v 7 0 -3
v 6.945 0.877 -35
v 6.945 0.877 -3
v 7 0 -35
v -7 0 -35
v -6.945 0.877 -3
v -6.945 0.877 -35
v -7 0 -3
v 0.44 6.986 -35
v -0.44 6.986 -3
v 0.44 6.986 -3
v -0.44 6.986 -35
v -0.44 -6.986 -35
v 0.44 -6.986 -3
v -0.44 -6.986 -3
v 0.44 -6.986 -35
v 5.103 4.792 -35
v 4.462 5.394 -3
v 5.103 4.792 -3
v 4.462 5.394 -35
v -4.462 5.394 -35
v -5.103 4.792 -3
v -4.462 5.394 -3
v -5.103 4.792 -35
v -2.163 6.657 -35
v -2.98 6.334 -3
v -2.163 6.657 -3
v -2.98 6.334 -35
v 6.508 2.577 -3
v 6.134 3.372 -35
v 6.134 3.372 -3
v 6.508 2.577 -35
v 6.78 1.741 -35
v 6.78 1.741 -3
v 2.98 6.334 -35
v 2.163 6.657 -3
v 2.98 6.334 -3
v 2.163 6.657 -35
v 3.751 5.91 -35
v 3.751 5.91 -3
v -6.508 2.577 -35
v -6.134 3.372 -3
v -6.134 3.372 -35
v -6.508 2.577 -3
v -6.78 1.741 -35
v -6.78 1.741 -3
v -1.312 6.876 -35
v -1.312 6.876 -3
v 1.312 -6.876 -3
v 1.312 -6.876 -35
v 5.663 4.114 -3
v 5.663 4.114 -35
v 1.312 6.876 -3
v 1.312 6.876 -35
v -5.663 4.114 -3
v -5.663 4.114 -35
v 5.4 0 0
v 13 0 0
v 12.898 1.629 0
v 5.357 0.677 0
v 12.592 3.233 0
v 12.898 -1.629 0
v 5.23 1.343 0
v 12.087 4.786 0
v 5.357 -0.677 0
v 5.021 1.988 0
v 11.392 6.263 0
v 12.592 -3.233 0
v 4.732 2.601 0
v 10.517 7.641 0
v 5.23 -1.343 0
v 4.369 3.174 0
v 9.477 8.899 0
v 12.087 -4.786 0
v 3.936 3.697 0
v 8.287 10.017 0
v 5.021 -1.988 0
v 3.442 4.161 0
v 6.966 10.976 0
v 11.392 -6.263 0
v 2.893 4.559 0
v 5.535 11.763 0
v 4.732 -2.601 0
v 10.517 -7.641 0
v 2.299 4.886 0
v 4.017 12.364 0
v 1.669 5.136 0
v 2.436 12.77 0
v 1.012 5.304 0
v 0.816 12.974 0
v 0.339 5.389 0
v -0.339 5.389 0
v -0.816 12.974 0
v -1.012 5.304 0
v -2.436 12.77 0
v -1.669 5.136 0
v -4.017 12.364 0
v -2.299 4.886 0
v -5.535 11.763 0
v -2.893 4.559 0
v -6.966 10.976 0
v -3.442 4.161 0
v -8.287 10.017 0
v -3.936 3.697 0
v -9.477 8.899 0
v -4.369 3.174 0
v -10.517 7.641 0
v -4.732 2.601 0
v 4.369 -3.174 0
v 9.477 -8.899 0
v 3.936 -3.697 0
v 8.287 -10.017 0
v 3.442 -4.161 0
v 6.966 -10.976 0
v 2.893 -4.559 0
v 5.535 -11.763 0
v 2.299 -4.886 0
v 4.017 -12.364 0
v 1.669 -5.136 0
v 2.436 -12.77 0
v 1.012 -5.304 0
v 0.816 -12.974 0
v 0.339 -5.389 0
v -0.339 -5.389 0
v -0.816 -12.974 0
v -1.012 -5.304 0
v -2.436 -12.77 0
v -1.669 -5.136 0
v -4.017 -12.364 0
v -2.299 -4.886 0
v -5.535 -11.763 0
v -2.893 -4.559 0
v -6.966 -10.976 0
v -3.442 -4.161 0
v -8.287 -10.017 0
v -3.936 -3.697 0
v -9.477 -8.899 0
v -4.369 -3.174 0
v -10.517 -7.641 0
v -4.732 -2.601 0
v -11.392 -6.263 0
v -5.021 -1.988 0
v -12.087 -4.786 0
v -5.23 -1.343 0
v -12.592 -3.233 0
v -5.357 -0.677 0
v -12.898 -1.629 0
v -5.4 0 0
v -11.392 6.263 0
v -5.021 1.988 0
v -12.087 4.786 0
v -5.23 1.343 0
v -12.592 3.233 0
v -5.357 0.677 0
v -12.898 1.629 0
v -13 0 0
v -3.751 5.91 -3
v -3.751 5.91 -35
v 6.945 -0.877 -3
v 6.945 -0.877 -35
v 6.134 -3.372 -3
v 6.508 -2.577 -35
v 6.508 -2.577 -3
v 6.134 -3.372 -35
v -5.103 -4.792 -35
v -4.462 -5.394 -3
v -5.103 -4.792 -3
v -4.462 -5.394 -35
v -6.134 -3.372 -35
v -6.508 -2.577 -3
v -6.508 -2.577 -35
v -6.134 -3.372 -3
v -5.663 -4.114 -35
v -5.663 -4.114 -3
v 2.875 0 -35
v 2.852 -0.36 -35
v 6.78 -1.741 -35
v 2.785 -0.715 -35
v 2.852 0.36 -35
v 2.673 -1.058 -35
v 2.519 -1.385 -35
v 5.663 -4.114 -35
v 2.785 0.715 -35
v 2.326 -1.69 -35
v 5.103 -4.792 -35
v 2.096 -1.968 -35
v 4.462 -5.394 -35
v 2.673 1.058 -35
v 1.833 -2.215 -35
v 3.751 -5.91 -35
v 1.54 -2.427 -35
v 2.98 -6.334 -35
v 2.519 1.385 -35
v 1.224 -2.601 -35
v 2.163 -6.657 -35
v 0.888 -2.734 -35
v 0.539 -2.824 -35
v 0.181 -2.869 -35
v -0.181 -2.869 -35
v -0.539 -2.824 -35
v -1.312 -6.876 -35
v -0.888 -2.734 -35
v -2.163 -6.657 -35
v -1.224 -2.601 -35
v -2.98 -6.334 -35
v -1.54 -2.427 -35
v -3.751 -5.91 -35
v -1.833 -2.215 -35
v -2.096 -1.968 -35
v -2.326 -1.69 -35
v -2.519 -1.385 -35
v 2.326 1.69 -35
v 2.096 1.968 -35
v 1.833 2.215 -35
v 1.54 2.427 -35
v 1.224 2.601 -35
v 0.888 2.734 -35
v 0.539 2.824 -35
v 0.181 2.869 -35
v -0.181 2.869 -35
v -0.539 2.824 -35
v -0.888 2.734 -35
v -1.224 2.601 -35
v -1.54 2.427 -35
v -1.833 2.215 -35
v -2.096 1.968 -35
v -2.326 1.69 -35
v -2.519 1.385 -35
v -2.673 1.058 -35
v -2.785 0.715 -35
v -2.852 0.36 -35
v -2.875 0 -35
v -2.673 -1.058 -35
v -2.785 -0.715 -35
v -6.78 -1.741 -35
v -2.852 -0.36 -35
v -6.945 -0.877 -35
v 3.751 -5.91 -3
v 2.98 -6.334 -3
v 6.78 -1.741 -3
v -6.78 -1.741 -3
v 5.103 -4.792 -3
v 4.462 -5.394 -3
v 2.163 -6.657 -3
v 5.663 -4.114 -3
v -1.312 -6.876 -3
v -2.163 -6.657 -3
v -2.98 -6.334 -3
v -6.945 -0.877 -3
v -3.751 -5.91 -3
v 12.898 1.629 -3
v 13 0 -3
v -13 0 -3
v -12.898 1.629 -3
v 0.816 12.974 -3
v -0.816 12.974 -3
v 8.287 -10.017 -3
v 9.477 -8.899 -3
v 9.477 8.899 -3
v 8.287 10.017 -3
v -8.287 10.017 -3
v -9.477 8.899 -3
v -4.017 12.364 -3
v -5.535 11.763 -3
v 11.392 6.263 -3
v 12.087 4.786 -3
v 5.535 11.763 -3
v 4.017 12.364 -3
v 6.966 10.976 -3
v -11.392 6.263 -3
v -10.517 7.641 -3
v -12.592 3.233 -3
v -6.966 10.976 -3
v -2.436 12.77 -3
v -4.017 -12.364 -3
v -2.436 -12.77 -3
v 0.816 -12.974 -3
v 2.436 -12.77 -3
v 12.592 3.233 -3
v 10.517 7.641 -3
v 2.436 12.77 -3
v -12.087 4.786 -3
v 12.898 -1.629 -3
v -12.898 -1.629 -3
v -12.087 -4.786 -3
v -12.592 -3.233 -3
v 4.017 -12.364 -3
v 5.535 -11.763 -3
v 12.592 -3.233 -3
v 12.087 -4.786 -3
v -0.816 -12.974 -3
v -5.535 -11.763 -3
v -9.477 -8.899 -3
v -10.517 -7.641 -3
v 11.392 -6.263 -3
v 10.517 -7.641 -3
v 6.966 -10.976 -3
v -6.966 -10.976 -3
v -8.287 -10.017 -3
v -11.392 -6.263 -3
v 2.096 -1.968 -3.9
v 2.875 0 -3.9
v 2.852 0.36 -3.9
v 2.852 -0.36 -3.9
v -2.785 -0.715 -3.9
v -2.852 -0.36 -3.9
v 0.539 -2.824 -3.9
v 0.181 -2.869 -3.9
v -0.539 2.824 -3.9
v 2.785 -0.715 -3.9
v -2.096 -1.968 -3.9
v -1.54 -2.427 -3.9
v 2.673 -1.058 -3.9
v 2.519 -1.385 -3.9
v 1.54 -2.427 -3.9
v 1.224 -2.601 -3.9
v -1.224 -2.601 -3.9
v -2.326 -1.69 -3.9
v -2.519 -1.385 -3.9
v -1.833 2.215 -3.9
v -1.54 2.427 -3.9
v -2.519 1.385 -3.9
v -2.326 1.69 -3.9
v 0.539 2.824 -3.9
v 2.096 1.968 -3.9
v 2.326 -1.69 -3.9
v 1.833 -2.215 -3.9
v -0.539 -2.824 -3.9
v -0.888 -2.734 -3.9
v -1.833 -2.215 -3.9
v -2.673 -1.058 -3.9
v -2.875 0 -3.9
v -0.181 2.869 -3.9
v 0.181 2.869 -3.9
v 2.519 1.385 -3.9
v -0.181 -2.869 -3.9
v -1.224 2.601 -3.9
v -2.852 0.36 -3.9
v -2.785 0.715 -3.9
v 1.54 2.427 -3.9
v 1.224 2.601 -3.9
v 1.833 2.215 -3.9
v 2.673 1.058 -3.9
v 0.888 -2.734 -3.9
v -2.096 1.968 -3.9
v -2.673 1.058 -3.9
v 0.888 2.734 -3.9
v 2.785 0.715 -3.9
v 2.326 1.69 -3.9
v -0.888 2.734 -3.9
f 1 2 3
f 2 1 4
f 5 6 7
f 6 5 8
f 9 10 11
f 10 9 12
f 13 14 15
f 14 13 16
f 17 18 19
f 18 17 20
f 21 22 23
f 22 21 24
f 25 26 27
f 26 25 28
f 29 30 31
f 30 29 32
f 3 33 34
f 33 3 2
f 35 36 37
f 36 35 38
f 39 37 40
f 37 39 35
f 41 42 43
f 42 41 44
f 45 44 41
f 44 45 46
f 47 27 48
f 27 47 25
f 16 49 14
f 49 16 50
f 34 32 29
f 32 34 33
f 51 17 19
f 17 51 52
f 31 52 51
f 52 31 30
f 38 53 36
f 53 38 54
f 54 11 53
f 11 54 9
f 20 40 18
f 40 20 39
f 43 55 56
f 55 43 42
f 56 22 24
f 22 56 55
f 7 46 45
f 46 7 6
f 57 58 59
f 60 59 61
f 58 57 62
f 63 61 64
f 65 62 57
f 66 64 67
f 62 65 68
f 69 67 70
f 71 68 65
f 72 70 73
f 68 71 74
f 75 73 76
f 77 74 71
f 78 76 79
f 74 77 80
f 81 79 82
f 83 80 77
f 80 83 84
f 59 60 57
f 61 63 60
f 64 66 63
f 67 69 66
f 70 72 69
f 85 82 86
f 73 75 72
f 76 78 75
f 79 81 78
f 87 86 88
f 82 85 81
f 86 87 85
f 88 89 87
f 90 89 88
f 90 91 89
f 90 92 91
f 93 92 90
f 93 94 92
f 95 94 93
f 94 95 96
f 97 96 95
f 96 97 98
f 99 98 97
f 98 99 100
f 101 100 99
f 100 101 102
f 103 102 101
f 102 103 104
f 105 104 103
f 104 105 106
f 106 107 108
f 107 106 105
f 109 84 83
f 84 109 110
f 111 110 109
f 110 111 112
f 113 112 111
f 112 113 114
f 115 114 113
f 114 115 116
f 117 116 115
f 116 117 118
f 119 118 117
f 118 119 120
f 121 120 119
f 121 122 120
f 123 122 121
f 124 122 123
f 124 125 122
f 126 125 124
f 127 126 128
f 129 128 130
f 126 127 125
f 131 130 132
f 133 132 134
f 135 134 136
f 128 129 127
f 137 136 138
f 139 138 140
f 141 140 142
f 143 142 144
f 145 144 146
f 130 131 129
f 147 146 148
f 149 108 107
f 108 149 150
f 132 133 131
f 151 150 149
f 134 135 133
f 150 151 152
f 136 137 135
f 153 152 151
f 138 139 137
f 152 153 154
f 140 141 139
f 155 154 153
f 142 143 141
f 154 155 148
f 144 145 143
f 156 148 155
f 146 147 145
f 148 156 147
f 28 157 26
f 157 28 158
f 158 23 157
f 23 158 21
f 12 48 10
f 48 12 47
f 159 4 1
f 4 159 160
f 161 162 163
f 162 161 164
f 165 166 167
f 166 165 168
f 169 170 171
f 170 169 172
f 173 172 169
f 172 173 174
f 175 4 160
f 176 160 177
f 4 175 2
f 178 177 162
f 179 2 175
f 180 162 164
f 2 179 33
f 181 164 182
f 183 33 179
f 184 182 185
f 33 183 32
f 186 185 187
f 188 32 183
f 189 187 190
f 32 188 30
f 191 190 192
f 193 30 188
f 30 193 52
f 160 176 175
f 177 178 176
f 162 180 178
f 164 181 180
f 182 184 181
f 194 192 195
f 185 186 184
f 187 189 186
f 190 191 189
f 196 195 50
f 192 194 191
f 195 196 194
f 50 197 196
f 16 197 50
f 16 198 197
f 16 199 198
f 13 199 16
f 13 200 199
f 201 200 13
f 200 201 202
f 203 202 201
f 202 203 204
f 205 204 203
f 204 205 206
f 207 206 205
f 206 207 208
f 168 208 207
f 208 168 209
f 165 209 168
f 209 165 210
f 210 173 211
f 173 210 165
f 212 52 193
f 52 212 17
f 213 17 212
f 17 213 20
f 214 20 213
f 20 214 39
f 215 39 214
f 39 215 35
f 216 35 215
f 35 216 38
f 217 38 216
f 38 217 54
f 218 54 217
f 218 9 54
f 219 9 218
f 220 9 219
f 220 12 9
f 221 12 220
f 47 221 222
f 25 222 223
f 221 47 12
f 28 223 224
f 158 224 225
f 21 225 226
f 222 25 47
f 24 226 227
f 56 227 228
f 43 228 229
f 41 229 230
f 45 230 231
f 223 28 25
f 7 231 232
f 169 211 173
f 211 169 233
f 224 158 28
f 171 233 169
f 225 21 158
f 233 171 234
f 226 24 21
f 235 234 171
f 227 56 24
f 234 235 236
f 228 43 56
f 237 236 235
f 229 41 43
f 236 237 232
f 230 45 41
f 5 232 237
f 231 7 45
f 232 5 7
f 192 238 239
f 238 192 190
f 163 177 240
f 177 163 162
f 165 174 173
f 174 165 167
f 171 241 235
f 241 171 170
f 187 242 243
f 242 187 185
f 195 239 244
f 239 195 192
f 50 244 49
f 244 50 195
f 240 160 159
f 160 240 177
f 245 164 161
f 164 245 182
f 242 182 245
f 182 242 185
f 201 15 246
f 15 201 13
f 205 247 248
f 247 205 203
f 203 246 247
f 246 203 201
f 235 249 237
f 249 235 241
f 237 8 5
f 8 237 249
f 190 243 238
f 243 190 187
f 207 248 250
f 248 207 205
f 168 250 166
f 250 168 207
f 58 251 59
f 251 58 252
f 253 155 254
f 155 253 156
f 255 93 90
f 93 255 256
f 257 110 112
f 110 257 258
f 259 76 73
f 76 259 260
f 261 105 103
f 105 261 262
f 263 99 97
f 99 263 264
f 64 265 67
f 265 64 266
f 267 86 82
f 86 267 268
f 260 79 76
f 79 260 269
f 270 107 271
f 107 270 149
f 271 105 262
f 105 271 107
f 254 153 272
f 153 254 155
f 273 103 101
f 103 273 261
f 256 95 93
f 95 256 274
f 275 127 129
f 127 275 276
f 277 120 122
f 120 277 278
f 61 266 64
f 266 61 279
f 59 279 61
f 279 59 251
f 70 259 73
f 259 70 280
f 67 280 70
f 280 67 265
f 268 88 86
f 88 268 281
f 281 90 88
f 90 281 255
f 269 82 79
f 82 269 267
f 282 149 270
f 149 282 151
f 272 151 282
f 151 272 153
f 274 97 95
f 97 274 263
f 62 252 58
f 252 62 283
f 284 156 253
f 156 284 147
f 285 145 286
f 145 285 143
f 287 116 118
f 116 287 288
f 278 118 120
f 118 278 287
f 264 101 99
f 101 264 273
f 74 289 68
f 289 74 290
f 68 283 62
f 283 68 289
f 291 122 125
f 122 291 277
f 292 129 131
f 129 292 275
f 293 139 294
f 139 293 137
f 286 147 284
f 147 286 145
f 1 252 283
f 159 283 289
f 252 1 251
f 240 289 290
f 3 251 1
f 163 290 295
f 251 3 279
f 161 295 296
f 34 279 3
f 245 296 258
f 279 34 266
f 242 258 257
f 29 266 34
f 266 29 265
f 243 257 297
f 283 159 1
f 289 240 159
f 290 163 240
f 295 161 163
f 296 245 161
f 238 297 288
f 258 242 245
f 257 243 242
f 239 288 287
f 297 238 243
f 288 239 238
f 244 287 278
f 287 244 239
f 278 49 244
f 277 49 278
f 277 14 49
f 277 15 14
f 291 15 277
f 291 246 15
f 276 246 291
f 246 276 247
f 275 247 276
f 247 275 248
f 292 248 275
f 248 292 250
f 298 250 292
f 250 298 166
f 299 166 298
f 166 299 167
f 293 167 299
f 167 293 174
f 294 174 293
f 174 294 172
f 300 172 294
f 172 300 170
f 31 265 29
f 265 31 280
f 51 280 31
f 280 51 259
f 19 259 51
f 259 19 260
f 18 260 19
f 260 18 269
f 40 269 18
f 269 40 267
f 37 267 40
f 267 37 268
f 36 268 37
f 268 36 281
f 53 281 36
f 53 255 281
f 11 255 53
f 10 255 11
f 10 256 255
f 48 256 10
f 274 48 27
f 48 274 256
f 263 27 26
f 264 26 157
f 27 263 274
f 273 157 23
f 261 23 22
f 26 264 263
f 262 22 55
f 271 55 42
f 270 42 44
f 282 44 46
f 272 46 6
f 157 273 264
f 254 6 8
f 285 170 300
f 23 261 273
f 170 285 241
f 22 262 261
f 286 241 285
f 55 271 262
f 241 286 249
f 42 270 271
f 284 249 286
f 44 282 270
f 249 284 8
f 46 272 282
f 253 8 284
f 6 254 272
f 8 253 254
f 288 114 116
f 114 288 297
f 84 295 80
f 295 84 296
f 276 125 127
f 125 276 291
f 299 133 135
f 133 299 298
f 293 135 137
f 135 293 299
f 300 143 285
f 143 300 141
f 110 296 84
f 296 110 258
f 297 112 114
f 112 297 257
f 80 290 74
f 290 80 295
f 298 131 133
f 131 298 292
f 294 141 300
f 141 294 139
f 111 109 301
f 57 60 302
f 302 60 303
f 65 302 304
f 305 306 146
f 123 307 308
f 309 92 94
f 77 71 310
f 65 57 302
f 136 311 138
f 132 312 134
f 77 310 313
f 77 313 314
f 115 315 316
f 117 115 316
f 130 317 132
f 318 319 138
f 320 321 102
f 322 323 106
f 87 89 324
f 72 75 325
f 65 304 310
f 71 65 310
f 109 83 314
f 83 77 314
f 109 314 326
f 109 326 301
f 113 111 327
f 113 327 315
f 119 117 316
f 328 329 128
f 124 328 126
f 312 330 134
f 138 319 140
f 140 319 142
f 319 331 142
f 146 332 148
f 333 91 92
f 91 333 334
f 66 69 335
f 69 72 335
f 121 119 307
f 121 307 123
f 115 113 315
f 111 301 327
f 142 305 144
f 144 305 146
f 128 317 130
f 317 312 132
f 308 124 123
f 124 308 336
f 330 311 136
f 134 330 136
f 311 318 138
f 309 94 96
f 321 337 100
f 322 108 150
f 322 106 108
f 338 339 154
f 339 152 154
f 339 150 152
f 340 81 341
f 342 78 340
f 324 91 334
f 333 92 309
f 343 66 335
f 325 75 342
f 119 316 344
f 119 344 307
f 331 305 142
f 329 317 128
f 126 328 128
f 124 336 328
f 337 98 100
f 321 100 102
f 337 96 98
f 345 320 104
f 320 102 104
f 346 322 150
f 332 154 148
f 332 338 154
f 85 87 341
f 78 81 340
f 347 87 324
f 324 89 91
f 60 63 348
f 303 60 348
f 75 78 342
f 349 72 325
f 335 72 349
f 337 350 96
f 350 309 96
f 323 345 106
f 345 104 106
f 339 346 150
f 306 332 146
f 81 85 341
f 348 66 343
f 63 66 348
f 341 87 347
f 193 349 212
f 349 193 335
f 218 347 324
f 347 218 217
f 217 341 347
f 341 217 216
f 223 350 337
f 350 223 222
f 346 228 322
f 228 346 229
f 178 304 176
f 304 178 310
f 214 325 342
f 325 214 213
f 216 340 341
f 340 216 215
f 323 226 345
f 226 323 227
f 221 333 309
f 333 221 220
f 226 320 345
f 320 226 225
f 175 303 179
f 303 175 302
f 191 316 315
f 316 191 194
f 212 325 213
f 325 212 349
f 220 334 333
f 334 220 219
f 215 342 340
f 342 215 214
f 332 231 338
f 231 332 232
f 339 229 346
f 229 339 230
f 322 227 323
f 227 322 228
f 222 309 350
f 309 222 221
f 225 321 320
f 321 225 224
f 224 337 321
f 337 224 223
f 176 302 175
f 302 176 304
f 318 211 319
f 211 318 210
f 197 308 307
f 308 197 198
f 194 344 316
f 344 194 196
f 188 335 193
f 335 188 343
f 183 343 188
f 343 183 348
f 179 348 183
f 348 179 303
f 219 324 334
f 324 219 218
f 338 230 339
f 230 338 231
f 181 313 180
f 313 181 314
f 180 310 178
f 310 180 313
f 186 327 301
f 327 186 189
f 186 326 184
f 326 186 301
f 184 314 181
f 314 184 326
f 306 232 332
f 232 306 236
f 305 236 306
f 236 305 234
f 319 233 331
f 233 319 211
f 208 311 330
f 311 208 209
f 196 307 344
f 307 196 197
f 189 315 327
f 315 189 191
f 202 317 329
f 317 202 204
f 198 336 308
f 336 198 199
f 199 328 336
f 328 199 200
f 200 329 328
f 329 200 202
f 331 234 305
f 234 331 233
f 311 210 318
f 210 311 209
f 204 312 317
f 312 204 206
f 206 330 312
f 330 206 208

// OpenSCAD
$fn = 50;


difference() {
	union() {
		translate(v = [0, 0, -35.0000000000]) {
			cylinder(h = 35, r = 7.0000000000);
		}
		translate(v = [0, 0, -3.0000000000]) {
			cylinder(h = 3, r = 13.0000000000);
		}
	}
	union() {
		translate(v = [0, 0, 0]) {
			rotate(a = [0, 0, 0]) {
				difference() {
					union() {
						#translate(v = [0, 0, -35.0000000000]) {
							cylinder(h = 35, r = 2.6000000000);
						}
						#translate(v = [0, 0, -3.9000000000]) {
							cylinder(h = 3.9000000000, r = 7.0000000000, r1 = 2.8750000000, r2 = 5.4000000000);
						}
						#translate(v = [0, 0, -35.0000000000]) {
							cylinder(h = 35, r = 2.8750000000);
						}
						#translate(v = [0, 0, -35.0000000000]) {
							cylinder(h = 35, r = 2.6000000000);
						}
					}
					union();
				}
			}
		}
	}
}
